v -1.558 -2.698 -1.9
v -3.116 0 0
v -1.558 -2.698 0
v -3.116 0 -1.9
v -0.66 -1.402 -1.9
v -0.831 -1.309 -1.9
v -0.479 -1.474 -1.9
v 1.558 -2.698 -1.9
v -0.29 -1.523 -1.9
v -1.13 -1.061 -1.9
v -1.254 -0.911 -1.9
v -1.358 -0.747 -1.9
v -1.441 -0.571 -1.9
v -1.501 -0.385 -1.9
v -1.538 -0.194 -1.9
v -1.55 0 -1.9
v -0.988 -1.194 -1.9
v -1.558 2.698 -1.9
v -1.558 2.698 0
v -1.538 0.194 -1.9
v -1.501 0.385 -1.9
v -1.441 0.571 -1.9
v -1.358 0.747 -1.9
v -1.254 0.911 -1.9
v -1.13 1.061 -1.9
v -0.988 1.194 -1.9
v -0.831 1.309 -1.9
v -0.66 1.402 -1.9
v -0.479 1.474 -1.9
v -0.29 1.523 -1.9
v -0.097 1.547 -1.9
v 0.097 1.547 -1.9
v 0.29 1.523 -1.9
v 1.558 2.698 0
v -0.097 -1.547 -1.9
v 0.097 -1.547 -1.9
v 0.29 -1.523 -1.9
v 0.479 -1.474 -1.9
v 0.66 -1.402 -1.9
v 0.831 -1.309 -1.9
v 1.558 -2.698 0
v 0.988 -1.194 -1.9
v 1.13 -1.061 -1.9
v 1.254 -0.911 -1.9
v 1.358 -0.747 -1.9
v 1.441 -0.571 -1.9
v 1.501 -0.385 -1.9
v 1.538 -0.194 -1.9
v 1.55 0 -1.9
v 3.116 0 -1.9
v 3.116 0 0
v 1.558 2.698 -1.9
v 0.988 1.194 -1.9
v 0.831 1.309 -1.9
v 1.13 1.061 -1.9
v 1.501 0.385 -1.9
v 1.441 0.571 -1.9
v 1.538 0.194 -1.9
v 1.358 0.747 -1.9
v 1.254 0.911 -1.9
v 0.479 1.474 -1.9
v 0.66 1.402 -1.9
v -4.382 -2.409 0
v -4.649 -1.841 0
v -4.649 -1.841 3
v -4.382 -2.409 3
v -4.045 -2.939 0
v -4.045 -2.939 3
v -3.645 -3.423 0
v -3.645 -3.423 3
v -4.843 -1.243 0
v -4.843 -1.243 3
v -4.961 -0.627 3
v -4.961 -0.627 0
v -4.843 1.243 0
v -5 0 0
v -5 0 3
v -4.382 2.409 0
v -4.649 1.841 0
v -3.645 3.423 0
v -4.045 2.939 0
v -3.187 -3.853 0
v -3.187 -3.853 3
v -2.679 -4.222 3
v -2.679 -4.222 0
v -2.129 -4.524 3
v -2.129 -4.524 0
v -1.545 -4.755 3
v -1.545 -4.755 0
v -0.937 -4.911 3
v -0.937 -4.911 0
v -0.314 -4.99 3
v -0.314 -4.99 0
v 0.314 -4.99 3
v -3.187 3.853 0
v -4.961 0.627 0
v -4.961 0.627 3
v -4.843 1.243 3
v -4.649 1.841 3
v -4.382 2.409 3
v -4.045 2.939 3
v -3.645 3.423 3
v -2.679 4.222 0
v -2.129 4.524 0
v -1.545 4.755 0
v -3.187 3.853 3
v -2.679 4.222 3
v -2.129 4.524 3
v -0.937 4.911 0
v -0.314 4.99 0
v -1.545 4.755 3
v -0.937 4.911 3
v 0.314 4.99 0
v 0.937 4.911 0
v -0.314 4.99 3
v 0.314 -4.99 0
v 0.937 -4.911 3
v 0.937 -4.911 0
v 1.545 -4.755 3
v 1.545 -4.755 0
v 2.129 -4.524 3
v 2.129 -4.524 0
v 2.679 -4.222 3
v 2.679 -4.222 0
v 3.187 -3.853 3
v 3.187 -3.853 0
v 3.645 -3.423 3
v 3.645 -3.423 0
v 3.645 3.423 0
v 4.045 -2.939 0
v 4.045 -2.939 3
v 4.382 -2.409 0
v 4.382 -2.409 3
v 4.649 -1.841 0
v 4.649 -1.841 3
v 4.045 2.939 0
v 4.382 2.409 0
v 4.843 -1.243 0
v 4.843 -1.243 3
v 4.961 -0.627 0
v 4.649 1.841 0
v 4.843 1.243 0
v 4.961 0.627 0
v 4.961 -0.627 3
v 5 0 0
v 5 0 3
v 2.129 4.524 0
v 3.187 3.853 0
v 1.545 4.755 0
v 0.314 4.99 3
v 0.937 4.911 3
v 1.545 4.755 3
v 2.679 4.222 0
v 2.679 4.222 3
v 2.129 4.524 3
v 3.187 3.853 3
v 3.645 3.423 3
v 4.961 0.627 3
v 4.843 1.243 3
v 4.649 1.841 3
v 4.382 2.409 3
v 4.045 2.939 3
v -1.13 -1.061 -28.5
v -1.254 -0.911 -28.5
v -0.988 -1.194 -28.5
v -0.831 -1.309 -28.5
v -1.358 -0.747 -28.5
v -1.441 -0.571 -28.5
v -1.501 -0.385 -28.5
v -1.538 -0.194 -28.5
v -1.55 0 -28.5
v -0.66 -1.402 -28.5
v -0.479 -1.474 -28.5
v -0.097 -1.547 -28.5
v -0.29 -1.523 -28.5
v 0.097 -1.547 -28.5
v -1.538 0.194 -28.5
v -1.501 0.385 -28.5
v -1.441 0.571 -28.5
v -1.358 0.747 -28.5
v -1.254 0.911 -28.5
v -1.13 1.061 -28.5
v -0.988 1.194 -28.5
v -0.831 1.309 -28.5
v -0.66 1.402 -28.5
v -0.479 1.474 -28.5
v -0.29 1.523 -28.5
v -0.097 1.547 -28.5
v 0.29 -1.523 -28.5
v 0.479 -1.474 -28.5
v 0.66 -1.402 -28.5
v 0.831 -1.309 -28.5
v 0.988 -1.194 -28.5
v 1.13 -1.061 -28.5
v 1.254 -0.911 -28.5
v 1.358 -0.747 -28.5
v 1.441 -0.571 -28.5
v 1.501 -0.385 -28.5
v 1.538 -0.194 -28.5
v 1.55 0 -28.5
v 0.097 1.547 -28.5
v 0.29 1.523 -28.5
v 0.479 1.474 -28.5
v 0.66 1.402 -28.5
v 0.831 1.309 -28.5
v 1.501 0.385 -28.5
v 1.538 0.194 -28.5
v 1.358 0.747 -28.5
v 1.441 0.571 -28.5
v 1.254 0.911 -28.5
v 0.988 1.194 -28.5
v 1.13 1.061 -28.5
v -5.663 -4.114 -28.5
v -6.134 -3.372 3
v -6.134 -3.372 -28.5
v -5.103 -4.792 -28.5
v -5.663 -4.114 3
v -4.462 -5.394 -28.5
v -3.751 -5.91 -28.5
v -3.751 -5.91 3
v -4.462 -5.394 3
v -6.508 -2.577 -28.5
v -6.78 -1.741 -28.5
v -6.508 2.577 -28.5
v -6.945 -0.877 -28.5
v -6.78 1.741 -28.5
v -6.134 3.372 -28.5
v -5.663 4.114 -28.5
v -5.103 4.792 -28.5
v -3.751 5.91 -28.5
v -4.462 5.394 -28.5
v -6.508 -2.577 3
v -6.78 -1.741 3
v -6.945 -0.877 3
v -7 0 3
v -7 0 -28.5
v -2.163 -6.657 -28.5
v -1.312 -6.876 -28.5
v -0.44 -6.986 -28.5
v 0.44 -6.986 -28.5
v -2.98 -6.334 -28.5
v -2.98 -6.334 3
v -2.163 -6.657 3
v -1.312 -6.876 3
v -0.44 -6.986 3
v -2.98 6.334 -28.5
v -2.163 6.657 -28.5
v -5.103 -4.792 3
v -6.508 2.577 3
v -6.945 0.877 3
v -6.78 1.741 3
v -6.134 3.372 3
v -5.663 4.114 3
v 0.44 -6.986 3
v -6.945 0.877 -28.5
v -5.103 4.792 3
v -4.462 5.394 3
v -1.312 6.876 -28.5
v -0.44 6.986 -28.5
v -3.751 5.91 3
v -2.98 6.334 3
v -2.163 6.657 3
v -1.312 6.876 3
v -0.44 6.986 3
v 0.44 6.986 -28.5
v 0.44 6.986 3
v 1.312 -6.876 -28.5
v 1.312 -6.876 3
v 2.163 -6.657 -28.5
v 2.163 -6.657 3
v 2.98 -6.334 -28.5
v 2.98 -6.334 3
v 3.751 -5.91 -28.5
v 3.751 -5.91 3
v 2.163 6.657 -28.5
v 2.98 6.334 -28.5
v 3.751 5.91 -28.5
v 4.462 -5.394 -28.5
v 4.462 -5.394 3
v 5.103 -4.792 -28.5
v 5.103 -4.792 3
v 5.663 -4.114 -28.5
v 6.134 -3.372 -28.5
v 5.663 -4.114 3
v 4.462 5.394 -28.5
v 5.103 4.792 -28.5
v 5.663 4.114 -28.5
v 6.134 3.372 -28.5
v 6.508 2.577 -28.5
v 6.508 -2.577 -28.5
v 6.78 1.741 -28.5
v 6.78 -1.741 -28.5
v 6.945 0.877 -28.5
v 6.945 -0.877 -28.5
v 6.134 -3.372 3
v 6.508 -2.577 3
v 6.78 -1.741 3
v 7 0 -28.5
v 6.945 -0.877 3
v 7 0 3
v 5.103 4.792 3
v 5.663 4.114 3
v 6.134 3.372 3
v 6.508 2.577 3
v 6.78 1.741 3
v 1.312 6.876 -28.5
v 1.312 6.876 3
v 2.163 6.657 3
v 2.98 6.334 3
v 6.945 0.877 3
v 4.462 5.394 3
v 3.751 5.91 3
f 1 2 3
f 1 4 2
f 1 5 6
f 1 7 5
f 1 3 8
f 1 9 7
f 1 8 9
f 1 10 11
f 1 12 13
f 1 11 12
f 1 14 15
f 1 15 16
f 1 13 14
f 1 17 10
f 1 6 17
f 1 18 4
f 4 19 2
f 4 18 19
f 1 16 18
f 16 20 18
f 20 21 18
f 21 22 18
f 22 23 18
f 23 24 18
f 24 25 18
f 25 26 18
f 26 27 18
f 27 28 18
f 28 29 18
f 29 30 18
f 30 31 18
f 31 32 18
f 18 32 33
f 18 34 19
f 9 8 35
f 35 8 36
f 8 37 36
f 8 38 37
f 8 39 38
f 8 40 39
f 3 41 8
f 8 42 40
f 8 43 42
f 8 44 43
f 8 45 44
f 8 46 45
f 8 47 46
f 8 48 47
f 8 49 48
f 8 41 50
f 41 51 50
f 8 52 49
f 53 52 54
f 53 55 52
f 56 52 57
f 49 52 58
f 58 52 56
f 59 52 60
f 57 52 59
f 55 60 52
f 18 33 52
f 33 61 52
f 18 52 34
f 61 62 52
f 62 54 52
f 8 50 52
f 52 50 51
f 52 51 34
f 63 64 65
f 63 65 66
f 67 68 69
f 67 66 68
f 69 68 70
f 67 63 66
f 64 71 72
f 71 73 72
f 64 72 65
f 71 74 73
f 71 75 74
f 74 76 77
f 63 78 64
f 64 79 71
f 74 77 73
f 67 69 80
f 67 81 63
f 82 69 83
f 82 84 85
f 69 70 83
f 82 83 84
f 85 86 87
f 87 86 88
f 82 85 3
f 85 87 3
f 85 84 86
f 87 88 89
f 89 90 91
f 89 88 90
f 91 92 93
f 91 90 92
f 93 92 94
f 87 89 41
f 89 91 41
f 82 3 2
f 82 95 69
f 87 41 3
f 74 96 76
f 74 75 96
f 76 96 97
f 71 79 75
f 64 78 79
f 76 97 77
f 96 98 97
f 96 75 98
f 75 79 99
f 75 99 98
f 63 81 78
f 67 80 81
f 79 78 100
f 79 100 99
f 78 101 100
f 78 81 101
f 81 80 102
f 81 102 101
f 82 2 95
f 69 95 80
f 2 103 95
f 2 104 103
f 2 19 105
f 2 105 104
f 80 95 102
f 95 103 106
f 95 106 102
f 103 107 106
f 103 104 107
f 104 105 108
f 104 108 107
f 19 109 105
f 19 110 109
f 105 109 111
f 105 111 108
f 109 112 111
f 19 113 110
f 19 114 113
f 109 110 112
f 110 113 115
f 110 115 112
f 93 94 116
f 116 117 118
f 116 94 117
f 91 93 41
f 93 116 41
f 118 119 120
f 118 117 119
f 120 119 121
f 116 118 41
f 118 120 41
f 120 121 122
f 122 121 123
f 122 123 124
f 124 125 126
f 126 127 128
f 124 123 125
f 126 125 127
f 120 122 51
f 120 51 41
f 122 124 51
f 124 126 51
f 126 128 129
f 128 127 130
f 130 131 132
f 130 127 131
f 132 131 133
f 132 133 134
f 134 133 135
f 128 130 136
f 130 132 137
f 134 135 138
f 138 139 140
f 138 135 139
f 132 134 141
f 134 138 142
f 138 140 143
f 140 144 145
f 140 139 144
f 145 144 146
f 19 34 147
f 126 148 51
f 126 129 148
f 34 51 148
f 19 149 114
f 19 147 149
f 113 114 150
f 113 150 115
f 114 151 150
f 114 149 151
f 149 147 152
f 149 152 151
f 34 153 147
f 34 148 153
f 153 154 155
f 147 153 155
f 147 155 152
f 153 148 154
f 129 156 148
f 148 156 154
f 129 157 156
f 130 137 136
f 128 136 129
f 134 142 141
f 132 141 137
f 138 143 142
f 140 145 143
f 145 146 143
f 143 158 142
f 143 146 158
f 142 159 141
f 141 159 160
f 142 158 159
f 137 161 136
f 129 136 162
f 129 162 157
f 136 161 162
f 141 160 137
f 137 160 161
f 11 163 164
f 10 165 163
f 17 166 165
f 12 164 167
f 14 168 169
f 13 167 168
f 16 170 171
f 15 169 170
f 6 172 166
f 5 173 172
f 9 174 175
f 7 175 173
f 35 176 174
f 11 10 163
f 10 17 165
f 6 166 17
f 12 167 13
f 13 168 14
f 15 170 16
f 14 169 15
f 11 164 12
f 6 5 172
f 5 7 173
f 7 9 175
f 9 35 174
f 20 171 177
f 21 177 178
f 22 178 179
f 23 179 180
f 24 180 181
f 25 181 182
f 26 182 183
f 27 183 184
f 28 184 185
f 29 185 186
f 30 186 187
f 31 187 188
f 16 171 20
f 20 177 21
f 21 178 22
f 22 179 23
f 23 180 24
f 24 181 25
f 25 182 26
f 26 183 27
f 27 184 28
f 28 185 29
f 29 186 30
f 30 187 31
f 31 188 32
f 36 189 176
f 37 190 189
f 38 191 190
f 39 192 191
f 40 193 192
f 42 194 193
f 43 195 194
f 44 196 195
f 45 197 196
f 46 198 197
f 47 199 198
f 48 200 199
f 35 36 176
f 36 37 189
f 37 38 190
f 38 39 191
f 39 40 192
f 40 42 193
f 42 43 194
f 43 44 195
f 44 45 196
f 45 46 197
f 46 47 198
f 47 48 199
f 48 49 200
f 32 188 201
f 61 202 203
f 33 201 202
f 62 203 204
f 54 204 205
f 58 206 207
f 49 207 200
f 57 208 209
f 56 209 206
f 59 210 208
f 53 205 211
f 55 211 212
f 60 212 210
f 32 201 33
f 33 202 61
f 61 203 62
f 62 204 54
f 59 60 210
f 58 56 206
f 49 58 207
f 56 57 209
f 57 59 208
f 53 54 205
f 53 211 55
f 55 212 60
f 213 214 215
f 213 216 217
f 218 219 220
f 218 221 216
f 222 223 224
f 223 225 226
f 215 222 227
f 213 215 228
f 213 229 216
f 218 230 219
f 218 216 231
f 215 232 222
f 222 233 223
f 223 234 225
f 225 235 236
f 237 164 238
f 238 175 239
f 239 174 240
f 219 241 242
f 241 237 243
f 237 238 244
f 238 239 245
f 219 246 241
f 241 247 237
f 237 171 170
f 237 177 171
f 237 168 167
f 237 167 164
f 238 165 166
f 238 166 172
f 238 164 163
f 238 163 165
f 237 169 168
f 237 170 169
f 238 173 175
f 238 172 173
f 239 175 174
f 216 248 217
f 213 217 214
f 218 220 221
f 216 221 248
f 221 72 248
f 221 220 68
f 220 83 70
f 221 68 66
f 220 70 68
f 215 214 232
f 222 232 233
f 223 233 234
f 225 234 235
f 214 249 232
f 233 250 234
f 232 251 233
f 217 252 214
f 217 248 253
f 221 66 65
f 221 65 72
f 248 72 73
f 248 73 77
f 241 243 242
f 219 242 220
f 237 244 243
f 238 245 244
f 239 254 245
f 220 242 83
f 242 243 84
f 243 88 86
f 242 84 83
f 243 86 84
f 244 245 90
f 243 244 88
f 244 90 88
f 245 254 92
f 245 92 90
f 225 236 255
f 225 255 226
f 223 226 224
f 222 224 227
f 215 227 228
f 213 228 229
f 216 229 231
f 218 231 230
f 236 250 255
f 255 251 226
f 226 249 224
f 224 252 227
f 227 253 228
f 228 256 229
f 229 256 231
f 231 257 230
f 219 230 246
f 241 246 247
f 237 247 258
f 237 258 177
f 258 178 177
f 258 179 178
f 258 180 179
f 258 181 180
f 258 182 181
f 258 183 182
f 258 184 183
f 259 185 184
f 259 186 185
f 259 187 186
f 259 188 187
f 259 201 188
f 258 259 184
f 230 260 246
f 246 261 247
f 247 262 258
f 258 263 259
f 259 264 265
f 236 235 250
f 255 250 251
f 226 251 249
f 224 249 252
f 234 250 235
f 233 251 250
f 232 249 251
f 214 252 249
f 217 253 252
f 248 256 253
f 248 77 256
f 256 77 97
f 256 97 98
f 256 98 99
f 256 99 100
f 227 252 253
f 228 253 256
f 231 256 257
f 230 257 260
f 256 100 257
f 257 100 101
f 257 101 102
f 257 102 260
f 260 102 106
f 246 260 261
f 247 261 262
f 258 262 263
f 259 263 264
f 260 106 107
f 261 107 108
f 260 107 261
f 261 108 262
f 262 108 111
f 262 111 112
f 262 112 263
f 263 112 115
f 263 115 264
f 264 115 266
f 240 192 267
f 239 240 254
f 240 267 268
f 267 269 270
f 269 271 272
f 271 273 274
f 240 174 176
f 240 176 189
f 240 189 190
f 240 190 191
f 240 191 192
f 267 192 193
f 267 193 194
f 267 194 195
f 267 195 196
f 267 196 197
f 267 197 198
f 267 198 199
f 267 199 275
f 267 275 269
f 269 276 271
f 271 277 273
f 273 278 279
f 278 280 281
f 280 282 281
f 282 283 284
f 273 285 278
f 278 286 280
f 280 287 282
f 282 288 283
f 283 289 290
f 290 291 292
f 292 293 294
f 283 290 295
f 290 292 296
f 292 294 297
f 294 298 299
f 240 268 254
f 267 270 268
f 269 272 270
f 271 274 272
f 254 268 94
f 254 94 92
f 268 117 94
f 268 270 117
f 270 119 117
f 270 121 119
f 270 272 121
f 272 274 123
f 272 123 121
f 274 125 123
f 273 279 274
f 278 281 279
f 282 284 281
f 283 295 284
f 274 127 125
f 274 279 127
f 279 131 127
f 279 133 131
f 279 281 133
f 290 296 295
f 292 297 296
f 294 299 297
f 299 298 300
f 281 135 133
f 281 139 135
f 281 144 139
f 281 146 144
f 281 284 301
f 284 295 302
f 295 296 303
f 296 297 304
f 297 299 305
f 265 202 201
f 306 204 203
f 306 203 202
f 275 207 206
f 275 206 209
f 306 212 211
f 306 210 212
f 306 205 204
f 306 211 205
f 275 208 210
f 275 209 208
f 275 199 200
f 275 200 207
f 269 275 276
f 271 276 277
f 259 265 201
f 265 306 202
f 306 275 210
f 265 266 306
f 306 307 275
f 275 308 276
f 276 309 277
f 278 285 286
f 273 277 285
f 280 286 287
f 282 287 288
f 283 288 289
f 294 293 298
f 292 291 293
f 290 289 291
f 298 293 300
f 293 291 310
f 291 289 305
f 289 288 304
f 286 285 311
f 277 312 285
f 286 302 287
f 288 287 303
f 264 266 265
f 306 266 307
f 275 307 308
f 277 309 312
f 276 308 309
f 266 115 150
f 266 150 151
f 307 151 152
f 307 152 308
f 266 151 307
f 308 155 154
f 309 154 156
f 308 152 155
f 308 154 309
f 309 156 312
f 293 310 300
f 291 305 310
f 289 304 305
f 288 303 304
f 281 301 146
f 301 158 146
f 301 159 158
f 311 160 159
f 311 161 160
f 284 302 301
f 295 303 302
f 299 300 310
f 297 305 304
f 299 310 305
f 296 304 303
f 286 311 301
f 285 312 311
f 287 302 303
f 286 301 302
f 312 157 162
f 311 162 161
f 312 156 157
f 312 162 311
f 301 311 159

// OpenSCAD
$fn = 50;

difference() {
	union() {
		translate(v = [0, 0, -28.5]) {
			cylinder(h = 31.5, r = 7.0);
		}
	}
	union() {
		translate(v = [0, 0, 0]) {
			rotate(a = [0, 0, 0]) {
				difference() {
					union() {
						translate(v = [0, 0, -1.9]) {
							linear_extrude(height = 1.9) {
								polygon(points = [[3.1158, 0.0], [1.5579000000000005, 2.698361953111554], [-1.5578999999999994, 2.6983619531115544], [-3.1158, 3.815754496783323e-16], [-1.5579000000000014, -2.6983619531115535], [1.557899999999998, -2.6983619531115552]]);
							}
						}
					}
					union();
				}
			}
		}
		#cylinder(h = 3, r = 5.0);
		#translate(v = [0, 0, -100.0]) {
			cylinder(h = 200, r = 1.55);
		}
	}
}
